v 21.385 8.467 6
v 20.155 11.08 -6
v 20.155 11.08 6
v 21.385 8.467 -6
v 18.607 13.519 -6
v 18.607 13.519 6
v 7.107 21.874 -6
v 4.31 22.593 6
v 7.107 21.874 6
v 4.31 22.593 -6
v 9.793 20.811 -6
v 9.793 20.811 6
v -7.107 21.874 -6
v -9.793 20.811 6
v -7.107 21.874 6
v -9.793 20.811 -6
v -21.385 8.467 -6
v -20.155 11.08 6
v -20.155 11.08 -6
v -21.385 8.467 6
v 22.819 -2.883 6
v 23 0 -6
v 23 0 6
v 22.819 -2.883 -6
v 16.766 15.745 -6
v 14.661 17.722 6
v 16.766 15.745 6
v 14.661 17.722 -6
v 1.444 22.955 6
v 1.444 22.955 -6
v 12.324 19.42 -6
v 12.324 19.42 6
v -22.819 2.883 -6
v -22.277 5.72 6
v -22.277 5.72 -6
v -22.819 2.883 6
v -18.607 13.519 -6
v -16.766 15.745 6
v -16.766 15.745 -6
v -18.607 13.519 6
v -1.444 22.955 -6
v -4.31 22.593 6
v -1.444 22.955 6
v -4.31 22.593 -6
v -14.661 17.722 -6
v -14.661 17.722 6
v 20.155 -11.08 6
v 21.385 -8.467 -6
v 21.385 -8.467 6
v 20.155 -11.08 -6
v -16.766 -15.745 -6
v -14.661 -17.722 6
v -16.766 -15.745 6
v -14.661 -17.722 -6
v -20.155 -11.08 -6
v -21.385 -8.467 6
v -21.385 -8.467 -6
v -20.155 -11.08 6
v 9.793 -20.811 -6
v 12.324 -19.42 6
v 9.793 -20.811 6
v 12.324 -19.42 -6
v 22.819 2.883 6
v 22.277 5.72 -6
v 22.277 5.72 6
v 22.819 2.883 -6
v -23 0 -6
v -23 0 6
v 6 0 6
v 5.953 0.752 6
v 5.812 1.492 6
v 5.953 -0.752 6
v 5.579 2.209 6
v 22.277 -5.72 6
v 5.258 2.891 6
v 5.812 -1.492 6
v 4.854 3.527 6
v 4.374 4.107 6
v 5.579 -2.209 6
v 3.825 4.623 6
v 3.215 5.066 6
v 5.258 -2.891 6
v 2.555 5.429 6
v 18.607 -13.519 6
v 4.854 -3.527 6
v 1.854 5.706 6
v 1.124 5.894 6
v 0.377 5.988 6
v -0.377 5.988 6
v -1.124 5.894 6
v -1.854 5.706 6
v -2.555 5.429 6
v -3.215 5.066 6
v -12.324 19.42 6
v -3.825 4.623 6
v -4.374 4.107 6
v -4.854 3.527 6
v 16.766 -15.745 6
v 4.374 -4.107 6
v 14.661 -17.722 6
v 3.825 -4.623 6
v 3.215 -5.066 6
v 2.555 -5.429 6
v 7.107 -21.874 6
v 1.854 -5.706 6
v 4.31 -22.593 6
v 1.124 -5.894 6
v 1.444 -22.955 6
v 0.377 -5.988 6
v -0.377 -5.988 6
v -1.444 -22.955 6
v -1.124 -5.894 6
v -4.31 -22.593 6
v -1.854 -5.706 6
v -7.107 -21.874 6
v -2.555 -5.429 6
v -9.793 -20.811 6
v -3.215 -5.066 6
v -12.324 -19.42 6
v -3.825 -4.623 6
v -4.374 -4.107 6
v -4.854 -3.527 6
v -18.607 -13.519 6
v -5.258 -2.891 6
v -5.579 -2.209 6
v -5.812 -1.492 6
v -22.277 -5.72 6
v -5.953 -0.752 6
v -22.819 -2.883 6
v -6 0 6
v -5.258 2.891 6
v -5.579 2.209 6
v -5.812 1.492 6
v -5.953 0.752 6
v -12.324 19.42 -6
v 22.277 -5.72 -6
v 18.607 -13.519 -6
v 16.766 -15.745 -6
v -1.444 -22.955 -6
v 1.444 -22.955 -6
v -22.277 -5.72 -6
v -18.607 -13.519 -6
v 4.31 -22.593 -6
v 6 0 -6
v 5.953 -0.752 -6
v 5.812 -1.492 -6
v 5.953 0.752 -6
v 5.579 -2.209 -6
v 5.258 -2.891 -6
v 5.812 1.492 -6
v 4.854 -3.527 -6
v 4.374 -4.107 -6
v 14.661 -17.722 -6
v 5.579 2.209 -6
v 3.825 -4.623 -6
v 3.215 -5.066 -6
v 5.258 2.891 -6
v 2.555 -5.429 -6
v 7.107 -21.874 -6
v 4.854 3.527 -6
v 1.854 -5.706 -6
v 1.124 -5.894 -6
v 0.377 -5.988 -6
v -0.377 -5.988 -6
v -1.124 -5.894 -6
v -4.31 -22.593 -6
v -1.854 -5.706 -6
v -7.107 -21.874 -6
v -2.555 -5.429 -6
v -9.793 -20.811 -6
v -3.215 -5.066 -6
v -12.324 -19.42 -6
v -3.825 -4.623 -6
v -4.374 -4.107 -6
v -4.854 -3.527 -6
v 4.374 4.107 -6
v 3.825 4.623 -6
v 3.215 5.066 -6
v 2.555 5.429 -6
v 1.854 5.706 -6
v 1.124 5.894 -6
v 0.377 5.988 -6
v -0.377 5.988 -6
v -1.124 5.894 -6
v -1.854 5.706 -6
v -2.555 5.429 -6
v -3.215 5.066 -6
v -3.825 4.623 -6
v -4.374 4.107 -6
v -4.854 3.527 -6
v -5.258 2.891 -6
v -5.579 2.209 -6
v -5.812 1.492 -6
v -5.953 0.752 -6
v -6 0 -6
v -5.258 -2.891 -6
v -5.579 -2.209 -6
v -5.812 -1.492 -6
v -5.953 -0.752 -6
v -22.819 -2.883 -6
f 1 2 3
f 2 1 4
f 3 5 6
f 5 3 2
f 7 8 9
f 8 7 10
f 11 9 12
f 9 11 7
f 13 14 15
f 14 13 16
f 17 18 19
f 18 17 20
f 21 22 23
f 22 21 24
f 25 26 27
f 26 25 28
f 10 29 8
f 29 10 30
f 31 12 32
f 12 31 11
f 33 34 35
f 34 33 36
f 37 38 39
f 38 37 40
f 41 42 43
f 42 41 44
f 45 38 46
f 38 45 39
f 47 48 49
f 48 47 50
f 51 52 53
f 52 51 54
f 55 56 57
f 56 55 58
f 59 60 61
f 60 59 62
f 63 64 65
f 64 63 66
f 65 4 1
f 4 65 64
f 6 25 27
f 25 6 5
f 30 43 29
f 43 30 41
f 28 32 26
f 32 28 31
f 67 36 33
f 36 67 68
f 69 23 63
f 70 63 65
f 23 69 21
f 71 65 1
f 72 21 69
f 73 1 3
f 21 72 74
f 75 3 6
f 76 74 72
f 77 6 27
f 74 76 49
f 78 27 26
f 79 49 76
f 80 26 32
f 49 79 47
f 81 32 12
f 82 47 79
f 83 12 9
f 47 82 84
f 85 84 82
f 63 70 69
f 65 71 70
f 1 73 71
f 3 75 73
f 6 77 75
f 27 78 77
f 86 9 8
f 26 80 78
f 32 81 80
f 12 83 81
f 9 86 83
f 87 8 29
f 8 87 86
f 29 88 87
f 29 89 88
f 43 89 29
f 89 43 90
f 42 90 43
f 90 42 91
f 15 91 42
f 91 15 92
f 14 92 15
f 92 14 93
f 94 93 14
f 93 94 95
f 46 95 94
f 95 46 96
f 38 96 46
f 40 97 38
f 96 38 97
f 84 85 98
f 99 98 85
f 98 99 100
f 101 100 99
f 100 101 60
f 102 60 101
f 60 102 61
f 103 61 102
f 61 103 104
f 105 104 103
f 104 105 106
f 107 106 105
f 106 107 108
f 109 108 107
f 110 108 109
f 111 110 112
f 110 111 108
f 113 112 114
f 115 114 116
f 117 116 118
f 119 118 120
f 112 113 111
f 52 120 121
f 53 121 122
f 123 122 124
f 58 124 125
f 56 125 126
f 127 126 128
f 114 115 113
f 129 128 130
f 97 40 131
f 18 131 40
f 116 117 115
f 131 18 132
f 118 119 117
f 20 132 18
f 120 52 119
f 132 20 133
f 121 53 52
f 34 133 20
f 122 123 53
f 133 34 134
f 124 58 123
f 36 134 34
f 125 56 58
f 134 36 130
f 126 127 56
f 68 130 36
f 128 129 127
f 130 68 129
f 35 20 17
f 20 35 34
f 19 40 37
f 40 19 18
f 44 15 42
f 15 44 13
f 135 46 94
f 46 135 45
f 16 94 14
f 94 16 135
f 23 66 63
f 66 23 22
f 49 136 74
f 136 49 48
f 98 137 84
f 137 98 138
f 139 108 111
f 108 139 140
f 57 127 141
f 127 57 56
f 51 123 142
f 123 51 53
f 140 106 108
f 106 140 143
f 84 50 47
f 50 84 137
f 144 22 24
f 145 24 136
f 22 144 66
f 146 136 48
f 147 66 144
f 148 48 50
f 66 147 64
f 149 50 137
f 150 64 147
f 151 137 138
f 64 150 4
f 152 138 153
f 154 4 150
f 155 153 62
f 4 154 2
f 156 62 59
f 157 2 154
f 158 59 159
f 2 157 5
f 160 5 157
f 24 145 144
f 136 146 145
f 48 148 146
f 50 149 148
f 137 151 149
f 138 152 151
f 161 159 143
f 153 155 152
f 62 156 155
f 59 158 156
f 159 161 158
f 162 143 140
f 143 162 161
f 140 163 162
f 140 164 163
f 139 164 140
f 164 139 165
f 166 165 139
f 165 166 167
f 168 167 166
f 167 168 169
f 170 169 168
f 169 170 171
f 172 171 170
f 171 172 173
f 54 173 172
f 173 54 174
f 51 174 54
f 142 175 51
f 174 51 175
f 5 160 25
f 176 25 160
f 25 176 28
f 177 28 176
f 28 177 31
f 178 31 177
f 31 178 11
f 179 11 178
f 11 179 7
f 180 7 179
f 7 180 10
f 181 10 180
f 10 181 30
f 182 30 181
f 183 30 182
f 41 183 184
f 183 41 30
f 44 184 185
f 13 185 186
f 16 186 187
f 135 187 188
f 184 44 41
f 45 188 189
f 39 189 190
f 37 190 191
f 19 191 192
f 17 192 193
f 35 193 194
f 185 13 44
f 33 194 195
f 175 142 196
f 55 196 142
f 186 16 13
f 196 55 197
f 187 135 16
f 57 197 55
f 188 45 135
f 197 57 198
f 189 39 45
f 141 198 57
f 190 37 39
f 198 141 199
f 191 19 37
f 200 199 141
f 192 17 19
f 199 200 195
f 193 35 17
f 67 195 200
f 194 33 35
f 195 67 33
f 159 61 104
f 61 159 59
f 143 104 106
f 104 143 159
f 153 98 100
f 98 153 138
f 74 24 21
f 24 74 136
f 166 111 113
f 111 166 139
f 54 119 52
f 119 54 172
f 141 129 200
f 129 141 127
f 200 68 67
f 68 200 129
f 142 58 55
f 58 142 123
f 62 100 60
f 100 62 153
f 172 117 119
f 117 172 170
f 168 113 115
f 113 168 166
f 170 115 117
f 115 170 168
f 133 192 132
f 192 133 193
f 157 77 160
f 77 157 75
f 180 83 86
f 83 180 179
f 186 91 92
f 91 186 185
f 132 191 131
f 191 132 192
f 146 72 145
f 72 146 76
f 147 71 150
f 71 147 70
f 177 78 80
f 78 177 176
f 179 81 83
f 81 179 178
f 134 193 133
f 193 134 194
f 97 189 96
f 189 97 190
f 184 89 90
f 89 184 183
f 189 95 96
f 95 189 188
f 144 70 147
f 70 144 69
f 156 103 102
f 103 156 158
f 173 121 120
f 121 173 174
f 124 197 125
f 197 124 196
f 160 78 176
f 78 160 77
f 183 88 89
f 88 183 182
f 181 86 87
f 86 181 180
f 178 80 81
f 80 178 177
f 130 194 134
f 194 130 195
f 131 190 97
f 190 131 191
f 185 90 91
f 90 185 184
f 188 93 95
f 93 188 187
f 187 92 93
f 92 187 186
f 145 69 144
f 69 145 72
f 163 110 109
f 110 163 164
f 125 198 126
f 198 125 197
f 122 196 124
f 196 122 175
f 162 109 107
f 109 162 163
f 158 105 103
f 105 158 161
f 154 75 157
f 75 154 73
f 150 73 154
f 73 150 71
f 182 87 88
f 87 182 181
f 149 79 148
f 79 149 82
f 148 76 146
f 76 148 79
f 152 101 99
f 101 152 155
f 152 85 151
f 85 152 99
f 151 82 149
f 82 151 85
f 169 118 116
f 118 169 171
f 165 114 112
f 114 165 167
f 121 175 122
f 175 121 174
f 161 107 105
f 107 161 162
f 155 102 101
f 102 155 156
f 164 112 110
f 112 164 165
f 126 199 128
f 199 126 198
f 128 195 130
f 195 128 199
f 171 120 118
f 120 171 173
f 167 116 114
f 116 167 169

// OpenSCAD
$fn = 50;


difference() {
	union() {
		translate(v = [0, 0, -6.0000000000]) {
			cylinder(h = 12, r = 23.0000000000);
		}
	}
	union() {
		translate(v = [0, 0, -100.0000000000]) {
			cylinder(h = 200, r = 6);
		}
	}
}
